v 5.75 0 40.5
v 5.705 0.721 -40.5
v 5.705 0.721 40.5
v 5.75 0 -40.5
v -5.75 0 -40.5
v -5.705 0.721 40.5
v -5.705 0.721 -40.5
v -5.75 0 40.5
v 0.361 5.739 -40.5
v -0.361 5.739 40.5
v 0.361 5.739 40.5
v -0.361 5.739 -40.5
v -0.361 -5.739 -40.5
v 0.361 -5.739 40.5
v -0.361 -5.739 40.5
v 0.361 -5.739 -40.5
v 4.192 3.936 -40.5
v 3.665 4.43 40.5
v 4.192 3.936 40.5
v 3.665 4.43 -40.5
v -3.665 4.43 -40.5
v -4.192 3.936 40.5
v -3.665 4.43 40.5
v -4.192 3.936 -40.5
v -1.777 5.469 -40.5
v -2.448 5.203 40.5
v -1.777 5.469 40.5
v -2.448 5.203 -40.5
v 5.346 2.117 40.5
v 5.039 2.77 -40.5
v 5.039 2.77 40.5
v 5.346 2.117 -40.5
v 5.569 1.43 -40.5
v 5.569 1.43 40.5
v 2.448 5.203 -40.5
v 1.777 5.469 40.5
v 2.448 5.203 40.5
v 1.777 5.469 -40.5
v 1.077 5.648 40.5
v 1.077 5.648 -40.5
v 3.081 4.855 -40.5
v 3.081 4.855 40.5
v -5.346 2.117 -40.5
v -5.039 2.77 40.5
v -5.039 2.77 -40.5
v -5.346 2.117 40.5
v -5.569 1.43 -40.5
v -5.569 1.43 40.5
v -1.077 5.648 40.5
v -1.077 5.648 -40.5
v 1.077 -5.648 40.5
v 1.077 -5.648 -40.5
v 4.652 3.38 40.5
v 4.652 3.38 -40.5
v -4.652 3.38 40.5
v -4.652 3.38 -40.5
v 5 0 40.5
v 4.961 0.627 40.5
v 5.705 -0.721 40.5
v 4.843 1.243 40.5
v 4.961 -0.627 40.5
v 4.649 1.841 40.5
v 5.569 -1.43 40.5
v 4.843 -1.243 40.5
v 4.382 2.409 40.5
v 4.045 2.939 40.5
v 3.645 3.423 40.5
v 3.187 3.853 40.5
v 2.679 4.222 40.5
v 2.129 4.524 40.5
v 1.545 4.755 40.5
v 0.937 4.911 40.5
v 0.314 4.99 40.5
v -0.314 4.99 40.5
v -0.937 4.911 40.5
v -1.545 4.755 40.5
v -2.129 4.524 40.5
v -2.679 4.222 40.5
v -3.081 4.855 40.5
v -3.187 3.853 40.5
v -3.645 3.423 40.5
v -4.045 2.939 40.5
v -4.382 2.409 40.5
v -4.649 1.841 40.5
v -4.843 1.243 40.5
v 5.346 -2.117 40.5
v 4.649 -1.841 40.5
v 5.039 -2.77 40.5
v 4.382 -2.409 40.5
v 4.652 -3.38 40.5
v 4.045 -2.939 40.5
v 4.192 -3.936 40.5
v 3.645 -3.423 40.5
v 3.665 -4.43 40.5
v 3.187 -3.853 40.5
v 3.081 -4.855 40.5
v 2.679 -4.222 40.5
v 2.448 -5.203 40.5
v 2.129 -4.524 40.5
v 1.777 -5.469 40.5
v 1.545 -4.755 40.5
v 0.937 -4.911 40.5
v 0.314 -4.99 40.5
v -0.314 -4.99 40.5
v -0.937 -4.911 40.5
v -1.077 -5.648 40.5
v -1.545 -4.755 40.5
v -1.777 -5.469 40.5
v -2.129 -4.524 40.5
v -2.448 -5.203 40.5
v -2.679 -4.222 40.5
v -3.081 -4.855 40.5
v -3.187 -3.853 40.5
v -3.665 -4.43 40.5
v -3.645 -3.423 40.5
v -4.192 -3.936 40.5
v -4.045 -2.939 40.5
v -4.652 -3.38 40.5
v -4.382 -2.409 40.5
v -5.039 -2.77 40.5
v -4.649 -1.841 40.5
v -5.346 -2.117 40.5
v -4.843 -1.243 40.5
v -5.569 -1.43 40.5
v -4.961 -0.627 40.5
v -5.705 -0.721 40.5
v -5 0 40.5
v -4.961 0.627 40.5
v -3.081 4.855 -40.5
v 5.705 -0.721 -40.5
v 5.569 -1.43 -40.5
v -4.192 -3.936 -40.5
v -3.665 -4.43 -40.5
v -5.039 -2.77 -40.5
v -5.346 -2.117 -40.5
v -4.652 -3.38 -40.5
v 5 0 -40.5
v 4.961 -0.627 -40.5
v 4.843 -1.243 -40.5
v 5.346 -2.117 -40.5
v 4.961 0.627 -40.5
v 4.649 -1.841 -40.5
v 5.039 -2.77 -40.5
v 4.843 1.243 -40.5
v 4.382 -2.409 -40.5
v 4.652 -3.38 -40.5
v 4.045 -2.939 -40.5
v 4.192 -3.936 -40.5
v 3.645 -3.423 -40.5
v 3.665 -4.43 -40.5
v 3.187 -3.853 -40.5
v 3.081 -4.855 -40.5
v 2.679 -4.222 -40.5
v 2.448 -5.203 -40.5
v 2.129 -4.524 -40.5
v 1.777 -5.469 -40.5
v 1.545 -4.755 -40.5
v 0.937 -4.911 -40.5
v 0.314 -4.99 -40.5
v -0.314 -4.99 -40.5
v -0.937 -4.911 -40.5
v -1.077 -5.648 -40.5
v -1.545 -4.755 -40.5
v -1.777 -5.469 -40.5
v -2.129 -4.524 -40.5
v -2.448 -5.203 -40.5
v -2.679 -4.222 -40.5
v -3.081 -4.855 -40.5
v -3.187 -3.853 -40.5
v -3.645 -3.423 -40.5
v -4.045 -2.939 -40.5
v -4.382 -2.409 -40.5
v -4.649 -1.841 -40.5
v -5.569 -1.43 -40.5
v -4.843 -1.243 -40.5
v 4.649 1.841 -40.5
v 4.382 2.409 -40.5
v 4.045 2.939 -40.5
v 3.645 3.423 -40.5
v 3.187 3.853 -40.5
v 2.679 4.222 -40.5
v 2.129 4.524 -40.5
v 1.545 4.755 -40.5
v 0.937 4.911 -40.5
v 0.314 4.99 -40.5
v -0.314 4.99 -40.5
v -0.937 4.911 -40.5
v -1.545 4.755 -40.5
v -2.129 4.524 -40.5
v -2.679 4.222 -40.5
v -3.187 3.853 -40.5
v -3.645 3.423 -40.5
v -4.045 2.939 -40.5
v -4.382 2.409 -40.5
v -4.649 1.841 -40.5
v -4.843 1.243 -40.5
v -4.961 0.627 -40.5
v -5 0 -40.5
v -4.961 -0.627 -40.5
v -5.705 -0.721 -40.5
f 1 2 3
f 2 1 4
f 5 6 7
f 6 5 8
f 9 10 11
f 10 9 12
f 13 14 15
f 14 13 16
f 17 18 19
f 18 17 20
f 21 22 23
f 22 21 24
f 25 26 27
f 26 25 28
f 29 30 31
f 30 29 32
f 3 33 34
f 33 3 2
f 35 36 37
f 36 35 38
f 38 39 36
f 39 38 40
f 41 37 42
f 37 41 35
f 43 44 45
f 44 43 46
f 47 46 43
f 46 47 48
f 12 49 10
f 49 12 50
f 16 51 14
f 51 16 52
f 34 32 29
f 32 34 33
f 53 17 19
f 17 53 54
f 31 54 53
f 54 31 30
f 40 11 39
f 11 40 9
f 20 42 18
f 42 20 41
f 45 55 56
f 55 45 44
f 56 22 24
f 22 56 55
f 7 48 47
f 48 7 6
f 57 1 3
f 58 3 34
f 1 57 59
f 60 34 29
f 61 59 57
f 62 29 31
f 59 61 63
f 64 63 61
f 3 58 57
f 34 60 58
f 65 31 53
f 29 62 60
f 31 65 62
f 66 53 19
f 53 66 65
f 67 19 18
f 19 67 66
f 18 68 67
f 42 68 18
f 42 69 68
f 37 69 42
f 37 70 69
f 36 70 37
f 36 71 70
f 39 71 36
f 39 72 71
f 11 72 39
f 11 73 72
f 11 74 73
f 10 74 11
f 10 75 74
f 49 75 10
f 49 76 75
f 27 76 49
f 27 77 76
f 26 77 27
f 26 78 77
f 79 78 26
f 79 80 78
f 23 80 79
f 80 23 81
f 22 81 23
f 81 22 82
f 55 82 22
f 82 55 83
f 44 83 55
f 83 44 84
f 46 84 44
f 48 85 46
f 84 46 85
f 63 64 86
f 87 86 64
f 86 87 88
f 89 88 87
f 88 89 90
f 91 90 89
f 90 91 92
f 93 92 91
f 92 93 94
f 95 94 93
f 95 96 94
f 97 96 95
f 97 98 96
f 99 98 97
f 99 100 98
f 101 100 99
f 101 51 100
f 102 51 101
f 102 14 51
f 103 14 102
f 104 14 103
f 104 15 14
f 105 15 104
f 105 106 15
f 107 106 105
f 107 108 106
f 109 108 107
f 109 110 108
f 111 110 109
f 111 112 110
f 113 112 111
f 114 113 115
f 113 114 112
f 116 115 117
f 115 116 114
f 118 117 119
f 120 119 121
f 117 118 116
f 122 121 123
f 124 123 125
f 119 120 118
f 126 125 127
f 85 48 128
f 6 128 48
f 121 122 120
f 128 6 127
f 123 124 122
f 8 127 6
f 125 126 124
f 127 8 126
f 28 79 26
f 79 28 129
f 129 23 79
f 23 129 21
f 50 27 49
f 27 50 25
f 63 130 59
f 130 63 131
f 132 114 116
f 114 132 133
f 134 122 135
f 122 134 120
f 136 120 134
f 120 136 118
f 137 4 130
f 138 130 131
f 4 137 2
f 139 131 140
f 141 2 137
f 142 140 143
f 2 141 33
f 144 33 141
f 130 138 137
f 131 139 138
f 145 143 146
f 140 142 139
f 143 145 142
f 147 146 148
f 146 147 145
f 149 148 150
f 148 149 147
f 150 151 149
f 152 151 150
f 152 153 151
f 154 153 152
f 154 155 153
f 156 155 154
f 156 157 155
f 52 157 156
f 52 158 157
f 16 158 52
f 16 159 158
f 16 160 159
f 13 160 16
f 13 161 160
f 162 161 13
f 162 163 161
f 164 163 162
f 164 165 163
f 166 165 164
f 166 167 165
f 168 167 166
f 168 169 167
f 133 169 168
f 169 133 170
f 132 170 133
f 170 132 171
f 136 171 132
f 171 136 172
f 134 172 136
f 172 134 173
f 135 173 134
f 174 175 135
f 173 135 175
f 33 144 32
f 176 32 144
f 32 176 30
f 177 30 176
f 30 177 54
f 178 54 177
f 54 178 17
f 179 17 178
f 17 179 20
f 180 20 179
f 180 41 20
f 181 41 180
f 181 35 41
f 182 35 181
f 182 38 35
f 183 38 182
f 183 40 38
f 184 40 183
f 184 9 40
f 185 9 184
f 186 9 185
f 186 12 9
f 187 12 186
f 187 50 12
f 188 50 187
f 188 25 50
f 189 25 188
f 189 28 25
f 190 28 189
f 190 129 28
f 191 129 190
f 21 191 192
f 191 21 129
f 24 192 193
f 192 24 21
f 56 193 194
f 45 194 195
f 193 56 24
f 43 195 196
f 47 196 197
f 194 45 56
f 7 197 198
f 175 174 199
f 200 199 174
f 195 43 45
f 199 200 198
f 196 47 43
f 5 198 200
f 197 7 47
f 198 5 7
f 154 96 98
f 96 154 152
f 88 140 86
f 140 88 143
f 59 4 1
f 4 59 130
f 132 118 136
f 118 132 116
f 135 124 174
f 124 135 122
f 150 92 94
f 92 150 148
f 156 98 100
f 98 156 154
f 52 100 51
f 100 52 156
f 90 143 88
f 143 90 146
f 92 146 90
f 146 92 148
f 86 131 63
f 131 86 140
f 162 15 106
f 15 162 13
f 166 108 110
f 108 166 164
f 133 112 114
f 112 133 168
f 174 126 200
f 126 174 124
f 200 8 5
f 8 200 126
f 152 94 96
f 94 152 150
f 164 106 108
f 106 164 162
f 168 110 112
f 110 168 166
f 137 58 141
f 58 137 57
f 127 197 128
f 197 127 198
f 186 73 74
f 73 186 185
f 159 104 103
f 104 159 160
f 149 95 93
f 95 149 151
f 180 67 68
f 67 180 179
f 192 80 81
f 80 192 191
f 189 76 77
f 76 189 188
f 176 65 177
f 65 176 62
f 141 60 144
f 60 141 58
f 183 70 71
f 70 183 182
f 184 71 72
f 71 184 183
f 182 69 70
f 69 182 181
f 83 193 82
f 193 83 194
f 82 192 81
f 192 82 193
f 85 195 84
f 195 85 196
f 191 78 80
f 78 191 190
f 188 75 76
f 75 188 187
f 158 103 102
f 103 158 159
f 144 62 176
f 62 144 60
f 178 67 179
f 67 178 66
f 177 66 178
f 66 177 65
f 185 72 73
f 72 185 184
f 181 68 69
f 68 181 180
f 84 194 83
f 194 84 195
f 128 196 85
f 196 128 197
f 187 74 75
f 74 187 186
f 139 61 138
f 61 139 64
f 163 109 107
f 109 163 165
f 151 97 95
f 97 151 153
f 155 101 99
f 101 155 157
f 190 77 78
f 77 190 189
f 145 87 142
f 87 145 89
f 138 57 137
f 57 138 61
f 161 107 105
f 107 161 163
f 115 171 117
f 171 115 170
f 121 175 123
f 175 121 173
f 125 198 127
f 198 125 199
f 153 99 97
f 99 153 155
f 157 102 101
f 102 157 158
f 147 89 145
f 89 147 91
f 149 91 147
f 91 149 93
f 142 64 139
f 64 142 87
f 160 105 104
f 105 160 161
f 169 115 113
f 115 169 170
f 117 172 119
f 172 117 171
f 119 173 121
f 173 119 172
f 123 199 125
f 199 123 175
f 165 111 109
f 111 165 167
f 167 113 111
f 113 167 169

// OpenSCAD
$fn = 50;


difference() {
	union() {
		translate(v = [0, 0, -40.5000000000]) {
			cylinder(h = 81, r = 5.7500000000);
		}
	}
	union() {
		translate(v = [0, 0, -100.0000000000]) {
			cylinder(h = 200, r = 5.0000000000);
		}
	}
}
